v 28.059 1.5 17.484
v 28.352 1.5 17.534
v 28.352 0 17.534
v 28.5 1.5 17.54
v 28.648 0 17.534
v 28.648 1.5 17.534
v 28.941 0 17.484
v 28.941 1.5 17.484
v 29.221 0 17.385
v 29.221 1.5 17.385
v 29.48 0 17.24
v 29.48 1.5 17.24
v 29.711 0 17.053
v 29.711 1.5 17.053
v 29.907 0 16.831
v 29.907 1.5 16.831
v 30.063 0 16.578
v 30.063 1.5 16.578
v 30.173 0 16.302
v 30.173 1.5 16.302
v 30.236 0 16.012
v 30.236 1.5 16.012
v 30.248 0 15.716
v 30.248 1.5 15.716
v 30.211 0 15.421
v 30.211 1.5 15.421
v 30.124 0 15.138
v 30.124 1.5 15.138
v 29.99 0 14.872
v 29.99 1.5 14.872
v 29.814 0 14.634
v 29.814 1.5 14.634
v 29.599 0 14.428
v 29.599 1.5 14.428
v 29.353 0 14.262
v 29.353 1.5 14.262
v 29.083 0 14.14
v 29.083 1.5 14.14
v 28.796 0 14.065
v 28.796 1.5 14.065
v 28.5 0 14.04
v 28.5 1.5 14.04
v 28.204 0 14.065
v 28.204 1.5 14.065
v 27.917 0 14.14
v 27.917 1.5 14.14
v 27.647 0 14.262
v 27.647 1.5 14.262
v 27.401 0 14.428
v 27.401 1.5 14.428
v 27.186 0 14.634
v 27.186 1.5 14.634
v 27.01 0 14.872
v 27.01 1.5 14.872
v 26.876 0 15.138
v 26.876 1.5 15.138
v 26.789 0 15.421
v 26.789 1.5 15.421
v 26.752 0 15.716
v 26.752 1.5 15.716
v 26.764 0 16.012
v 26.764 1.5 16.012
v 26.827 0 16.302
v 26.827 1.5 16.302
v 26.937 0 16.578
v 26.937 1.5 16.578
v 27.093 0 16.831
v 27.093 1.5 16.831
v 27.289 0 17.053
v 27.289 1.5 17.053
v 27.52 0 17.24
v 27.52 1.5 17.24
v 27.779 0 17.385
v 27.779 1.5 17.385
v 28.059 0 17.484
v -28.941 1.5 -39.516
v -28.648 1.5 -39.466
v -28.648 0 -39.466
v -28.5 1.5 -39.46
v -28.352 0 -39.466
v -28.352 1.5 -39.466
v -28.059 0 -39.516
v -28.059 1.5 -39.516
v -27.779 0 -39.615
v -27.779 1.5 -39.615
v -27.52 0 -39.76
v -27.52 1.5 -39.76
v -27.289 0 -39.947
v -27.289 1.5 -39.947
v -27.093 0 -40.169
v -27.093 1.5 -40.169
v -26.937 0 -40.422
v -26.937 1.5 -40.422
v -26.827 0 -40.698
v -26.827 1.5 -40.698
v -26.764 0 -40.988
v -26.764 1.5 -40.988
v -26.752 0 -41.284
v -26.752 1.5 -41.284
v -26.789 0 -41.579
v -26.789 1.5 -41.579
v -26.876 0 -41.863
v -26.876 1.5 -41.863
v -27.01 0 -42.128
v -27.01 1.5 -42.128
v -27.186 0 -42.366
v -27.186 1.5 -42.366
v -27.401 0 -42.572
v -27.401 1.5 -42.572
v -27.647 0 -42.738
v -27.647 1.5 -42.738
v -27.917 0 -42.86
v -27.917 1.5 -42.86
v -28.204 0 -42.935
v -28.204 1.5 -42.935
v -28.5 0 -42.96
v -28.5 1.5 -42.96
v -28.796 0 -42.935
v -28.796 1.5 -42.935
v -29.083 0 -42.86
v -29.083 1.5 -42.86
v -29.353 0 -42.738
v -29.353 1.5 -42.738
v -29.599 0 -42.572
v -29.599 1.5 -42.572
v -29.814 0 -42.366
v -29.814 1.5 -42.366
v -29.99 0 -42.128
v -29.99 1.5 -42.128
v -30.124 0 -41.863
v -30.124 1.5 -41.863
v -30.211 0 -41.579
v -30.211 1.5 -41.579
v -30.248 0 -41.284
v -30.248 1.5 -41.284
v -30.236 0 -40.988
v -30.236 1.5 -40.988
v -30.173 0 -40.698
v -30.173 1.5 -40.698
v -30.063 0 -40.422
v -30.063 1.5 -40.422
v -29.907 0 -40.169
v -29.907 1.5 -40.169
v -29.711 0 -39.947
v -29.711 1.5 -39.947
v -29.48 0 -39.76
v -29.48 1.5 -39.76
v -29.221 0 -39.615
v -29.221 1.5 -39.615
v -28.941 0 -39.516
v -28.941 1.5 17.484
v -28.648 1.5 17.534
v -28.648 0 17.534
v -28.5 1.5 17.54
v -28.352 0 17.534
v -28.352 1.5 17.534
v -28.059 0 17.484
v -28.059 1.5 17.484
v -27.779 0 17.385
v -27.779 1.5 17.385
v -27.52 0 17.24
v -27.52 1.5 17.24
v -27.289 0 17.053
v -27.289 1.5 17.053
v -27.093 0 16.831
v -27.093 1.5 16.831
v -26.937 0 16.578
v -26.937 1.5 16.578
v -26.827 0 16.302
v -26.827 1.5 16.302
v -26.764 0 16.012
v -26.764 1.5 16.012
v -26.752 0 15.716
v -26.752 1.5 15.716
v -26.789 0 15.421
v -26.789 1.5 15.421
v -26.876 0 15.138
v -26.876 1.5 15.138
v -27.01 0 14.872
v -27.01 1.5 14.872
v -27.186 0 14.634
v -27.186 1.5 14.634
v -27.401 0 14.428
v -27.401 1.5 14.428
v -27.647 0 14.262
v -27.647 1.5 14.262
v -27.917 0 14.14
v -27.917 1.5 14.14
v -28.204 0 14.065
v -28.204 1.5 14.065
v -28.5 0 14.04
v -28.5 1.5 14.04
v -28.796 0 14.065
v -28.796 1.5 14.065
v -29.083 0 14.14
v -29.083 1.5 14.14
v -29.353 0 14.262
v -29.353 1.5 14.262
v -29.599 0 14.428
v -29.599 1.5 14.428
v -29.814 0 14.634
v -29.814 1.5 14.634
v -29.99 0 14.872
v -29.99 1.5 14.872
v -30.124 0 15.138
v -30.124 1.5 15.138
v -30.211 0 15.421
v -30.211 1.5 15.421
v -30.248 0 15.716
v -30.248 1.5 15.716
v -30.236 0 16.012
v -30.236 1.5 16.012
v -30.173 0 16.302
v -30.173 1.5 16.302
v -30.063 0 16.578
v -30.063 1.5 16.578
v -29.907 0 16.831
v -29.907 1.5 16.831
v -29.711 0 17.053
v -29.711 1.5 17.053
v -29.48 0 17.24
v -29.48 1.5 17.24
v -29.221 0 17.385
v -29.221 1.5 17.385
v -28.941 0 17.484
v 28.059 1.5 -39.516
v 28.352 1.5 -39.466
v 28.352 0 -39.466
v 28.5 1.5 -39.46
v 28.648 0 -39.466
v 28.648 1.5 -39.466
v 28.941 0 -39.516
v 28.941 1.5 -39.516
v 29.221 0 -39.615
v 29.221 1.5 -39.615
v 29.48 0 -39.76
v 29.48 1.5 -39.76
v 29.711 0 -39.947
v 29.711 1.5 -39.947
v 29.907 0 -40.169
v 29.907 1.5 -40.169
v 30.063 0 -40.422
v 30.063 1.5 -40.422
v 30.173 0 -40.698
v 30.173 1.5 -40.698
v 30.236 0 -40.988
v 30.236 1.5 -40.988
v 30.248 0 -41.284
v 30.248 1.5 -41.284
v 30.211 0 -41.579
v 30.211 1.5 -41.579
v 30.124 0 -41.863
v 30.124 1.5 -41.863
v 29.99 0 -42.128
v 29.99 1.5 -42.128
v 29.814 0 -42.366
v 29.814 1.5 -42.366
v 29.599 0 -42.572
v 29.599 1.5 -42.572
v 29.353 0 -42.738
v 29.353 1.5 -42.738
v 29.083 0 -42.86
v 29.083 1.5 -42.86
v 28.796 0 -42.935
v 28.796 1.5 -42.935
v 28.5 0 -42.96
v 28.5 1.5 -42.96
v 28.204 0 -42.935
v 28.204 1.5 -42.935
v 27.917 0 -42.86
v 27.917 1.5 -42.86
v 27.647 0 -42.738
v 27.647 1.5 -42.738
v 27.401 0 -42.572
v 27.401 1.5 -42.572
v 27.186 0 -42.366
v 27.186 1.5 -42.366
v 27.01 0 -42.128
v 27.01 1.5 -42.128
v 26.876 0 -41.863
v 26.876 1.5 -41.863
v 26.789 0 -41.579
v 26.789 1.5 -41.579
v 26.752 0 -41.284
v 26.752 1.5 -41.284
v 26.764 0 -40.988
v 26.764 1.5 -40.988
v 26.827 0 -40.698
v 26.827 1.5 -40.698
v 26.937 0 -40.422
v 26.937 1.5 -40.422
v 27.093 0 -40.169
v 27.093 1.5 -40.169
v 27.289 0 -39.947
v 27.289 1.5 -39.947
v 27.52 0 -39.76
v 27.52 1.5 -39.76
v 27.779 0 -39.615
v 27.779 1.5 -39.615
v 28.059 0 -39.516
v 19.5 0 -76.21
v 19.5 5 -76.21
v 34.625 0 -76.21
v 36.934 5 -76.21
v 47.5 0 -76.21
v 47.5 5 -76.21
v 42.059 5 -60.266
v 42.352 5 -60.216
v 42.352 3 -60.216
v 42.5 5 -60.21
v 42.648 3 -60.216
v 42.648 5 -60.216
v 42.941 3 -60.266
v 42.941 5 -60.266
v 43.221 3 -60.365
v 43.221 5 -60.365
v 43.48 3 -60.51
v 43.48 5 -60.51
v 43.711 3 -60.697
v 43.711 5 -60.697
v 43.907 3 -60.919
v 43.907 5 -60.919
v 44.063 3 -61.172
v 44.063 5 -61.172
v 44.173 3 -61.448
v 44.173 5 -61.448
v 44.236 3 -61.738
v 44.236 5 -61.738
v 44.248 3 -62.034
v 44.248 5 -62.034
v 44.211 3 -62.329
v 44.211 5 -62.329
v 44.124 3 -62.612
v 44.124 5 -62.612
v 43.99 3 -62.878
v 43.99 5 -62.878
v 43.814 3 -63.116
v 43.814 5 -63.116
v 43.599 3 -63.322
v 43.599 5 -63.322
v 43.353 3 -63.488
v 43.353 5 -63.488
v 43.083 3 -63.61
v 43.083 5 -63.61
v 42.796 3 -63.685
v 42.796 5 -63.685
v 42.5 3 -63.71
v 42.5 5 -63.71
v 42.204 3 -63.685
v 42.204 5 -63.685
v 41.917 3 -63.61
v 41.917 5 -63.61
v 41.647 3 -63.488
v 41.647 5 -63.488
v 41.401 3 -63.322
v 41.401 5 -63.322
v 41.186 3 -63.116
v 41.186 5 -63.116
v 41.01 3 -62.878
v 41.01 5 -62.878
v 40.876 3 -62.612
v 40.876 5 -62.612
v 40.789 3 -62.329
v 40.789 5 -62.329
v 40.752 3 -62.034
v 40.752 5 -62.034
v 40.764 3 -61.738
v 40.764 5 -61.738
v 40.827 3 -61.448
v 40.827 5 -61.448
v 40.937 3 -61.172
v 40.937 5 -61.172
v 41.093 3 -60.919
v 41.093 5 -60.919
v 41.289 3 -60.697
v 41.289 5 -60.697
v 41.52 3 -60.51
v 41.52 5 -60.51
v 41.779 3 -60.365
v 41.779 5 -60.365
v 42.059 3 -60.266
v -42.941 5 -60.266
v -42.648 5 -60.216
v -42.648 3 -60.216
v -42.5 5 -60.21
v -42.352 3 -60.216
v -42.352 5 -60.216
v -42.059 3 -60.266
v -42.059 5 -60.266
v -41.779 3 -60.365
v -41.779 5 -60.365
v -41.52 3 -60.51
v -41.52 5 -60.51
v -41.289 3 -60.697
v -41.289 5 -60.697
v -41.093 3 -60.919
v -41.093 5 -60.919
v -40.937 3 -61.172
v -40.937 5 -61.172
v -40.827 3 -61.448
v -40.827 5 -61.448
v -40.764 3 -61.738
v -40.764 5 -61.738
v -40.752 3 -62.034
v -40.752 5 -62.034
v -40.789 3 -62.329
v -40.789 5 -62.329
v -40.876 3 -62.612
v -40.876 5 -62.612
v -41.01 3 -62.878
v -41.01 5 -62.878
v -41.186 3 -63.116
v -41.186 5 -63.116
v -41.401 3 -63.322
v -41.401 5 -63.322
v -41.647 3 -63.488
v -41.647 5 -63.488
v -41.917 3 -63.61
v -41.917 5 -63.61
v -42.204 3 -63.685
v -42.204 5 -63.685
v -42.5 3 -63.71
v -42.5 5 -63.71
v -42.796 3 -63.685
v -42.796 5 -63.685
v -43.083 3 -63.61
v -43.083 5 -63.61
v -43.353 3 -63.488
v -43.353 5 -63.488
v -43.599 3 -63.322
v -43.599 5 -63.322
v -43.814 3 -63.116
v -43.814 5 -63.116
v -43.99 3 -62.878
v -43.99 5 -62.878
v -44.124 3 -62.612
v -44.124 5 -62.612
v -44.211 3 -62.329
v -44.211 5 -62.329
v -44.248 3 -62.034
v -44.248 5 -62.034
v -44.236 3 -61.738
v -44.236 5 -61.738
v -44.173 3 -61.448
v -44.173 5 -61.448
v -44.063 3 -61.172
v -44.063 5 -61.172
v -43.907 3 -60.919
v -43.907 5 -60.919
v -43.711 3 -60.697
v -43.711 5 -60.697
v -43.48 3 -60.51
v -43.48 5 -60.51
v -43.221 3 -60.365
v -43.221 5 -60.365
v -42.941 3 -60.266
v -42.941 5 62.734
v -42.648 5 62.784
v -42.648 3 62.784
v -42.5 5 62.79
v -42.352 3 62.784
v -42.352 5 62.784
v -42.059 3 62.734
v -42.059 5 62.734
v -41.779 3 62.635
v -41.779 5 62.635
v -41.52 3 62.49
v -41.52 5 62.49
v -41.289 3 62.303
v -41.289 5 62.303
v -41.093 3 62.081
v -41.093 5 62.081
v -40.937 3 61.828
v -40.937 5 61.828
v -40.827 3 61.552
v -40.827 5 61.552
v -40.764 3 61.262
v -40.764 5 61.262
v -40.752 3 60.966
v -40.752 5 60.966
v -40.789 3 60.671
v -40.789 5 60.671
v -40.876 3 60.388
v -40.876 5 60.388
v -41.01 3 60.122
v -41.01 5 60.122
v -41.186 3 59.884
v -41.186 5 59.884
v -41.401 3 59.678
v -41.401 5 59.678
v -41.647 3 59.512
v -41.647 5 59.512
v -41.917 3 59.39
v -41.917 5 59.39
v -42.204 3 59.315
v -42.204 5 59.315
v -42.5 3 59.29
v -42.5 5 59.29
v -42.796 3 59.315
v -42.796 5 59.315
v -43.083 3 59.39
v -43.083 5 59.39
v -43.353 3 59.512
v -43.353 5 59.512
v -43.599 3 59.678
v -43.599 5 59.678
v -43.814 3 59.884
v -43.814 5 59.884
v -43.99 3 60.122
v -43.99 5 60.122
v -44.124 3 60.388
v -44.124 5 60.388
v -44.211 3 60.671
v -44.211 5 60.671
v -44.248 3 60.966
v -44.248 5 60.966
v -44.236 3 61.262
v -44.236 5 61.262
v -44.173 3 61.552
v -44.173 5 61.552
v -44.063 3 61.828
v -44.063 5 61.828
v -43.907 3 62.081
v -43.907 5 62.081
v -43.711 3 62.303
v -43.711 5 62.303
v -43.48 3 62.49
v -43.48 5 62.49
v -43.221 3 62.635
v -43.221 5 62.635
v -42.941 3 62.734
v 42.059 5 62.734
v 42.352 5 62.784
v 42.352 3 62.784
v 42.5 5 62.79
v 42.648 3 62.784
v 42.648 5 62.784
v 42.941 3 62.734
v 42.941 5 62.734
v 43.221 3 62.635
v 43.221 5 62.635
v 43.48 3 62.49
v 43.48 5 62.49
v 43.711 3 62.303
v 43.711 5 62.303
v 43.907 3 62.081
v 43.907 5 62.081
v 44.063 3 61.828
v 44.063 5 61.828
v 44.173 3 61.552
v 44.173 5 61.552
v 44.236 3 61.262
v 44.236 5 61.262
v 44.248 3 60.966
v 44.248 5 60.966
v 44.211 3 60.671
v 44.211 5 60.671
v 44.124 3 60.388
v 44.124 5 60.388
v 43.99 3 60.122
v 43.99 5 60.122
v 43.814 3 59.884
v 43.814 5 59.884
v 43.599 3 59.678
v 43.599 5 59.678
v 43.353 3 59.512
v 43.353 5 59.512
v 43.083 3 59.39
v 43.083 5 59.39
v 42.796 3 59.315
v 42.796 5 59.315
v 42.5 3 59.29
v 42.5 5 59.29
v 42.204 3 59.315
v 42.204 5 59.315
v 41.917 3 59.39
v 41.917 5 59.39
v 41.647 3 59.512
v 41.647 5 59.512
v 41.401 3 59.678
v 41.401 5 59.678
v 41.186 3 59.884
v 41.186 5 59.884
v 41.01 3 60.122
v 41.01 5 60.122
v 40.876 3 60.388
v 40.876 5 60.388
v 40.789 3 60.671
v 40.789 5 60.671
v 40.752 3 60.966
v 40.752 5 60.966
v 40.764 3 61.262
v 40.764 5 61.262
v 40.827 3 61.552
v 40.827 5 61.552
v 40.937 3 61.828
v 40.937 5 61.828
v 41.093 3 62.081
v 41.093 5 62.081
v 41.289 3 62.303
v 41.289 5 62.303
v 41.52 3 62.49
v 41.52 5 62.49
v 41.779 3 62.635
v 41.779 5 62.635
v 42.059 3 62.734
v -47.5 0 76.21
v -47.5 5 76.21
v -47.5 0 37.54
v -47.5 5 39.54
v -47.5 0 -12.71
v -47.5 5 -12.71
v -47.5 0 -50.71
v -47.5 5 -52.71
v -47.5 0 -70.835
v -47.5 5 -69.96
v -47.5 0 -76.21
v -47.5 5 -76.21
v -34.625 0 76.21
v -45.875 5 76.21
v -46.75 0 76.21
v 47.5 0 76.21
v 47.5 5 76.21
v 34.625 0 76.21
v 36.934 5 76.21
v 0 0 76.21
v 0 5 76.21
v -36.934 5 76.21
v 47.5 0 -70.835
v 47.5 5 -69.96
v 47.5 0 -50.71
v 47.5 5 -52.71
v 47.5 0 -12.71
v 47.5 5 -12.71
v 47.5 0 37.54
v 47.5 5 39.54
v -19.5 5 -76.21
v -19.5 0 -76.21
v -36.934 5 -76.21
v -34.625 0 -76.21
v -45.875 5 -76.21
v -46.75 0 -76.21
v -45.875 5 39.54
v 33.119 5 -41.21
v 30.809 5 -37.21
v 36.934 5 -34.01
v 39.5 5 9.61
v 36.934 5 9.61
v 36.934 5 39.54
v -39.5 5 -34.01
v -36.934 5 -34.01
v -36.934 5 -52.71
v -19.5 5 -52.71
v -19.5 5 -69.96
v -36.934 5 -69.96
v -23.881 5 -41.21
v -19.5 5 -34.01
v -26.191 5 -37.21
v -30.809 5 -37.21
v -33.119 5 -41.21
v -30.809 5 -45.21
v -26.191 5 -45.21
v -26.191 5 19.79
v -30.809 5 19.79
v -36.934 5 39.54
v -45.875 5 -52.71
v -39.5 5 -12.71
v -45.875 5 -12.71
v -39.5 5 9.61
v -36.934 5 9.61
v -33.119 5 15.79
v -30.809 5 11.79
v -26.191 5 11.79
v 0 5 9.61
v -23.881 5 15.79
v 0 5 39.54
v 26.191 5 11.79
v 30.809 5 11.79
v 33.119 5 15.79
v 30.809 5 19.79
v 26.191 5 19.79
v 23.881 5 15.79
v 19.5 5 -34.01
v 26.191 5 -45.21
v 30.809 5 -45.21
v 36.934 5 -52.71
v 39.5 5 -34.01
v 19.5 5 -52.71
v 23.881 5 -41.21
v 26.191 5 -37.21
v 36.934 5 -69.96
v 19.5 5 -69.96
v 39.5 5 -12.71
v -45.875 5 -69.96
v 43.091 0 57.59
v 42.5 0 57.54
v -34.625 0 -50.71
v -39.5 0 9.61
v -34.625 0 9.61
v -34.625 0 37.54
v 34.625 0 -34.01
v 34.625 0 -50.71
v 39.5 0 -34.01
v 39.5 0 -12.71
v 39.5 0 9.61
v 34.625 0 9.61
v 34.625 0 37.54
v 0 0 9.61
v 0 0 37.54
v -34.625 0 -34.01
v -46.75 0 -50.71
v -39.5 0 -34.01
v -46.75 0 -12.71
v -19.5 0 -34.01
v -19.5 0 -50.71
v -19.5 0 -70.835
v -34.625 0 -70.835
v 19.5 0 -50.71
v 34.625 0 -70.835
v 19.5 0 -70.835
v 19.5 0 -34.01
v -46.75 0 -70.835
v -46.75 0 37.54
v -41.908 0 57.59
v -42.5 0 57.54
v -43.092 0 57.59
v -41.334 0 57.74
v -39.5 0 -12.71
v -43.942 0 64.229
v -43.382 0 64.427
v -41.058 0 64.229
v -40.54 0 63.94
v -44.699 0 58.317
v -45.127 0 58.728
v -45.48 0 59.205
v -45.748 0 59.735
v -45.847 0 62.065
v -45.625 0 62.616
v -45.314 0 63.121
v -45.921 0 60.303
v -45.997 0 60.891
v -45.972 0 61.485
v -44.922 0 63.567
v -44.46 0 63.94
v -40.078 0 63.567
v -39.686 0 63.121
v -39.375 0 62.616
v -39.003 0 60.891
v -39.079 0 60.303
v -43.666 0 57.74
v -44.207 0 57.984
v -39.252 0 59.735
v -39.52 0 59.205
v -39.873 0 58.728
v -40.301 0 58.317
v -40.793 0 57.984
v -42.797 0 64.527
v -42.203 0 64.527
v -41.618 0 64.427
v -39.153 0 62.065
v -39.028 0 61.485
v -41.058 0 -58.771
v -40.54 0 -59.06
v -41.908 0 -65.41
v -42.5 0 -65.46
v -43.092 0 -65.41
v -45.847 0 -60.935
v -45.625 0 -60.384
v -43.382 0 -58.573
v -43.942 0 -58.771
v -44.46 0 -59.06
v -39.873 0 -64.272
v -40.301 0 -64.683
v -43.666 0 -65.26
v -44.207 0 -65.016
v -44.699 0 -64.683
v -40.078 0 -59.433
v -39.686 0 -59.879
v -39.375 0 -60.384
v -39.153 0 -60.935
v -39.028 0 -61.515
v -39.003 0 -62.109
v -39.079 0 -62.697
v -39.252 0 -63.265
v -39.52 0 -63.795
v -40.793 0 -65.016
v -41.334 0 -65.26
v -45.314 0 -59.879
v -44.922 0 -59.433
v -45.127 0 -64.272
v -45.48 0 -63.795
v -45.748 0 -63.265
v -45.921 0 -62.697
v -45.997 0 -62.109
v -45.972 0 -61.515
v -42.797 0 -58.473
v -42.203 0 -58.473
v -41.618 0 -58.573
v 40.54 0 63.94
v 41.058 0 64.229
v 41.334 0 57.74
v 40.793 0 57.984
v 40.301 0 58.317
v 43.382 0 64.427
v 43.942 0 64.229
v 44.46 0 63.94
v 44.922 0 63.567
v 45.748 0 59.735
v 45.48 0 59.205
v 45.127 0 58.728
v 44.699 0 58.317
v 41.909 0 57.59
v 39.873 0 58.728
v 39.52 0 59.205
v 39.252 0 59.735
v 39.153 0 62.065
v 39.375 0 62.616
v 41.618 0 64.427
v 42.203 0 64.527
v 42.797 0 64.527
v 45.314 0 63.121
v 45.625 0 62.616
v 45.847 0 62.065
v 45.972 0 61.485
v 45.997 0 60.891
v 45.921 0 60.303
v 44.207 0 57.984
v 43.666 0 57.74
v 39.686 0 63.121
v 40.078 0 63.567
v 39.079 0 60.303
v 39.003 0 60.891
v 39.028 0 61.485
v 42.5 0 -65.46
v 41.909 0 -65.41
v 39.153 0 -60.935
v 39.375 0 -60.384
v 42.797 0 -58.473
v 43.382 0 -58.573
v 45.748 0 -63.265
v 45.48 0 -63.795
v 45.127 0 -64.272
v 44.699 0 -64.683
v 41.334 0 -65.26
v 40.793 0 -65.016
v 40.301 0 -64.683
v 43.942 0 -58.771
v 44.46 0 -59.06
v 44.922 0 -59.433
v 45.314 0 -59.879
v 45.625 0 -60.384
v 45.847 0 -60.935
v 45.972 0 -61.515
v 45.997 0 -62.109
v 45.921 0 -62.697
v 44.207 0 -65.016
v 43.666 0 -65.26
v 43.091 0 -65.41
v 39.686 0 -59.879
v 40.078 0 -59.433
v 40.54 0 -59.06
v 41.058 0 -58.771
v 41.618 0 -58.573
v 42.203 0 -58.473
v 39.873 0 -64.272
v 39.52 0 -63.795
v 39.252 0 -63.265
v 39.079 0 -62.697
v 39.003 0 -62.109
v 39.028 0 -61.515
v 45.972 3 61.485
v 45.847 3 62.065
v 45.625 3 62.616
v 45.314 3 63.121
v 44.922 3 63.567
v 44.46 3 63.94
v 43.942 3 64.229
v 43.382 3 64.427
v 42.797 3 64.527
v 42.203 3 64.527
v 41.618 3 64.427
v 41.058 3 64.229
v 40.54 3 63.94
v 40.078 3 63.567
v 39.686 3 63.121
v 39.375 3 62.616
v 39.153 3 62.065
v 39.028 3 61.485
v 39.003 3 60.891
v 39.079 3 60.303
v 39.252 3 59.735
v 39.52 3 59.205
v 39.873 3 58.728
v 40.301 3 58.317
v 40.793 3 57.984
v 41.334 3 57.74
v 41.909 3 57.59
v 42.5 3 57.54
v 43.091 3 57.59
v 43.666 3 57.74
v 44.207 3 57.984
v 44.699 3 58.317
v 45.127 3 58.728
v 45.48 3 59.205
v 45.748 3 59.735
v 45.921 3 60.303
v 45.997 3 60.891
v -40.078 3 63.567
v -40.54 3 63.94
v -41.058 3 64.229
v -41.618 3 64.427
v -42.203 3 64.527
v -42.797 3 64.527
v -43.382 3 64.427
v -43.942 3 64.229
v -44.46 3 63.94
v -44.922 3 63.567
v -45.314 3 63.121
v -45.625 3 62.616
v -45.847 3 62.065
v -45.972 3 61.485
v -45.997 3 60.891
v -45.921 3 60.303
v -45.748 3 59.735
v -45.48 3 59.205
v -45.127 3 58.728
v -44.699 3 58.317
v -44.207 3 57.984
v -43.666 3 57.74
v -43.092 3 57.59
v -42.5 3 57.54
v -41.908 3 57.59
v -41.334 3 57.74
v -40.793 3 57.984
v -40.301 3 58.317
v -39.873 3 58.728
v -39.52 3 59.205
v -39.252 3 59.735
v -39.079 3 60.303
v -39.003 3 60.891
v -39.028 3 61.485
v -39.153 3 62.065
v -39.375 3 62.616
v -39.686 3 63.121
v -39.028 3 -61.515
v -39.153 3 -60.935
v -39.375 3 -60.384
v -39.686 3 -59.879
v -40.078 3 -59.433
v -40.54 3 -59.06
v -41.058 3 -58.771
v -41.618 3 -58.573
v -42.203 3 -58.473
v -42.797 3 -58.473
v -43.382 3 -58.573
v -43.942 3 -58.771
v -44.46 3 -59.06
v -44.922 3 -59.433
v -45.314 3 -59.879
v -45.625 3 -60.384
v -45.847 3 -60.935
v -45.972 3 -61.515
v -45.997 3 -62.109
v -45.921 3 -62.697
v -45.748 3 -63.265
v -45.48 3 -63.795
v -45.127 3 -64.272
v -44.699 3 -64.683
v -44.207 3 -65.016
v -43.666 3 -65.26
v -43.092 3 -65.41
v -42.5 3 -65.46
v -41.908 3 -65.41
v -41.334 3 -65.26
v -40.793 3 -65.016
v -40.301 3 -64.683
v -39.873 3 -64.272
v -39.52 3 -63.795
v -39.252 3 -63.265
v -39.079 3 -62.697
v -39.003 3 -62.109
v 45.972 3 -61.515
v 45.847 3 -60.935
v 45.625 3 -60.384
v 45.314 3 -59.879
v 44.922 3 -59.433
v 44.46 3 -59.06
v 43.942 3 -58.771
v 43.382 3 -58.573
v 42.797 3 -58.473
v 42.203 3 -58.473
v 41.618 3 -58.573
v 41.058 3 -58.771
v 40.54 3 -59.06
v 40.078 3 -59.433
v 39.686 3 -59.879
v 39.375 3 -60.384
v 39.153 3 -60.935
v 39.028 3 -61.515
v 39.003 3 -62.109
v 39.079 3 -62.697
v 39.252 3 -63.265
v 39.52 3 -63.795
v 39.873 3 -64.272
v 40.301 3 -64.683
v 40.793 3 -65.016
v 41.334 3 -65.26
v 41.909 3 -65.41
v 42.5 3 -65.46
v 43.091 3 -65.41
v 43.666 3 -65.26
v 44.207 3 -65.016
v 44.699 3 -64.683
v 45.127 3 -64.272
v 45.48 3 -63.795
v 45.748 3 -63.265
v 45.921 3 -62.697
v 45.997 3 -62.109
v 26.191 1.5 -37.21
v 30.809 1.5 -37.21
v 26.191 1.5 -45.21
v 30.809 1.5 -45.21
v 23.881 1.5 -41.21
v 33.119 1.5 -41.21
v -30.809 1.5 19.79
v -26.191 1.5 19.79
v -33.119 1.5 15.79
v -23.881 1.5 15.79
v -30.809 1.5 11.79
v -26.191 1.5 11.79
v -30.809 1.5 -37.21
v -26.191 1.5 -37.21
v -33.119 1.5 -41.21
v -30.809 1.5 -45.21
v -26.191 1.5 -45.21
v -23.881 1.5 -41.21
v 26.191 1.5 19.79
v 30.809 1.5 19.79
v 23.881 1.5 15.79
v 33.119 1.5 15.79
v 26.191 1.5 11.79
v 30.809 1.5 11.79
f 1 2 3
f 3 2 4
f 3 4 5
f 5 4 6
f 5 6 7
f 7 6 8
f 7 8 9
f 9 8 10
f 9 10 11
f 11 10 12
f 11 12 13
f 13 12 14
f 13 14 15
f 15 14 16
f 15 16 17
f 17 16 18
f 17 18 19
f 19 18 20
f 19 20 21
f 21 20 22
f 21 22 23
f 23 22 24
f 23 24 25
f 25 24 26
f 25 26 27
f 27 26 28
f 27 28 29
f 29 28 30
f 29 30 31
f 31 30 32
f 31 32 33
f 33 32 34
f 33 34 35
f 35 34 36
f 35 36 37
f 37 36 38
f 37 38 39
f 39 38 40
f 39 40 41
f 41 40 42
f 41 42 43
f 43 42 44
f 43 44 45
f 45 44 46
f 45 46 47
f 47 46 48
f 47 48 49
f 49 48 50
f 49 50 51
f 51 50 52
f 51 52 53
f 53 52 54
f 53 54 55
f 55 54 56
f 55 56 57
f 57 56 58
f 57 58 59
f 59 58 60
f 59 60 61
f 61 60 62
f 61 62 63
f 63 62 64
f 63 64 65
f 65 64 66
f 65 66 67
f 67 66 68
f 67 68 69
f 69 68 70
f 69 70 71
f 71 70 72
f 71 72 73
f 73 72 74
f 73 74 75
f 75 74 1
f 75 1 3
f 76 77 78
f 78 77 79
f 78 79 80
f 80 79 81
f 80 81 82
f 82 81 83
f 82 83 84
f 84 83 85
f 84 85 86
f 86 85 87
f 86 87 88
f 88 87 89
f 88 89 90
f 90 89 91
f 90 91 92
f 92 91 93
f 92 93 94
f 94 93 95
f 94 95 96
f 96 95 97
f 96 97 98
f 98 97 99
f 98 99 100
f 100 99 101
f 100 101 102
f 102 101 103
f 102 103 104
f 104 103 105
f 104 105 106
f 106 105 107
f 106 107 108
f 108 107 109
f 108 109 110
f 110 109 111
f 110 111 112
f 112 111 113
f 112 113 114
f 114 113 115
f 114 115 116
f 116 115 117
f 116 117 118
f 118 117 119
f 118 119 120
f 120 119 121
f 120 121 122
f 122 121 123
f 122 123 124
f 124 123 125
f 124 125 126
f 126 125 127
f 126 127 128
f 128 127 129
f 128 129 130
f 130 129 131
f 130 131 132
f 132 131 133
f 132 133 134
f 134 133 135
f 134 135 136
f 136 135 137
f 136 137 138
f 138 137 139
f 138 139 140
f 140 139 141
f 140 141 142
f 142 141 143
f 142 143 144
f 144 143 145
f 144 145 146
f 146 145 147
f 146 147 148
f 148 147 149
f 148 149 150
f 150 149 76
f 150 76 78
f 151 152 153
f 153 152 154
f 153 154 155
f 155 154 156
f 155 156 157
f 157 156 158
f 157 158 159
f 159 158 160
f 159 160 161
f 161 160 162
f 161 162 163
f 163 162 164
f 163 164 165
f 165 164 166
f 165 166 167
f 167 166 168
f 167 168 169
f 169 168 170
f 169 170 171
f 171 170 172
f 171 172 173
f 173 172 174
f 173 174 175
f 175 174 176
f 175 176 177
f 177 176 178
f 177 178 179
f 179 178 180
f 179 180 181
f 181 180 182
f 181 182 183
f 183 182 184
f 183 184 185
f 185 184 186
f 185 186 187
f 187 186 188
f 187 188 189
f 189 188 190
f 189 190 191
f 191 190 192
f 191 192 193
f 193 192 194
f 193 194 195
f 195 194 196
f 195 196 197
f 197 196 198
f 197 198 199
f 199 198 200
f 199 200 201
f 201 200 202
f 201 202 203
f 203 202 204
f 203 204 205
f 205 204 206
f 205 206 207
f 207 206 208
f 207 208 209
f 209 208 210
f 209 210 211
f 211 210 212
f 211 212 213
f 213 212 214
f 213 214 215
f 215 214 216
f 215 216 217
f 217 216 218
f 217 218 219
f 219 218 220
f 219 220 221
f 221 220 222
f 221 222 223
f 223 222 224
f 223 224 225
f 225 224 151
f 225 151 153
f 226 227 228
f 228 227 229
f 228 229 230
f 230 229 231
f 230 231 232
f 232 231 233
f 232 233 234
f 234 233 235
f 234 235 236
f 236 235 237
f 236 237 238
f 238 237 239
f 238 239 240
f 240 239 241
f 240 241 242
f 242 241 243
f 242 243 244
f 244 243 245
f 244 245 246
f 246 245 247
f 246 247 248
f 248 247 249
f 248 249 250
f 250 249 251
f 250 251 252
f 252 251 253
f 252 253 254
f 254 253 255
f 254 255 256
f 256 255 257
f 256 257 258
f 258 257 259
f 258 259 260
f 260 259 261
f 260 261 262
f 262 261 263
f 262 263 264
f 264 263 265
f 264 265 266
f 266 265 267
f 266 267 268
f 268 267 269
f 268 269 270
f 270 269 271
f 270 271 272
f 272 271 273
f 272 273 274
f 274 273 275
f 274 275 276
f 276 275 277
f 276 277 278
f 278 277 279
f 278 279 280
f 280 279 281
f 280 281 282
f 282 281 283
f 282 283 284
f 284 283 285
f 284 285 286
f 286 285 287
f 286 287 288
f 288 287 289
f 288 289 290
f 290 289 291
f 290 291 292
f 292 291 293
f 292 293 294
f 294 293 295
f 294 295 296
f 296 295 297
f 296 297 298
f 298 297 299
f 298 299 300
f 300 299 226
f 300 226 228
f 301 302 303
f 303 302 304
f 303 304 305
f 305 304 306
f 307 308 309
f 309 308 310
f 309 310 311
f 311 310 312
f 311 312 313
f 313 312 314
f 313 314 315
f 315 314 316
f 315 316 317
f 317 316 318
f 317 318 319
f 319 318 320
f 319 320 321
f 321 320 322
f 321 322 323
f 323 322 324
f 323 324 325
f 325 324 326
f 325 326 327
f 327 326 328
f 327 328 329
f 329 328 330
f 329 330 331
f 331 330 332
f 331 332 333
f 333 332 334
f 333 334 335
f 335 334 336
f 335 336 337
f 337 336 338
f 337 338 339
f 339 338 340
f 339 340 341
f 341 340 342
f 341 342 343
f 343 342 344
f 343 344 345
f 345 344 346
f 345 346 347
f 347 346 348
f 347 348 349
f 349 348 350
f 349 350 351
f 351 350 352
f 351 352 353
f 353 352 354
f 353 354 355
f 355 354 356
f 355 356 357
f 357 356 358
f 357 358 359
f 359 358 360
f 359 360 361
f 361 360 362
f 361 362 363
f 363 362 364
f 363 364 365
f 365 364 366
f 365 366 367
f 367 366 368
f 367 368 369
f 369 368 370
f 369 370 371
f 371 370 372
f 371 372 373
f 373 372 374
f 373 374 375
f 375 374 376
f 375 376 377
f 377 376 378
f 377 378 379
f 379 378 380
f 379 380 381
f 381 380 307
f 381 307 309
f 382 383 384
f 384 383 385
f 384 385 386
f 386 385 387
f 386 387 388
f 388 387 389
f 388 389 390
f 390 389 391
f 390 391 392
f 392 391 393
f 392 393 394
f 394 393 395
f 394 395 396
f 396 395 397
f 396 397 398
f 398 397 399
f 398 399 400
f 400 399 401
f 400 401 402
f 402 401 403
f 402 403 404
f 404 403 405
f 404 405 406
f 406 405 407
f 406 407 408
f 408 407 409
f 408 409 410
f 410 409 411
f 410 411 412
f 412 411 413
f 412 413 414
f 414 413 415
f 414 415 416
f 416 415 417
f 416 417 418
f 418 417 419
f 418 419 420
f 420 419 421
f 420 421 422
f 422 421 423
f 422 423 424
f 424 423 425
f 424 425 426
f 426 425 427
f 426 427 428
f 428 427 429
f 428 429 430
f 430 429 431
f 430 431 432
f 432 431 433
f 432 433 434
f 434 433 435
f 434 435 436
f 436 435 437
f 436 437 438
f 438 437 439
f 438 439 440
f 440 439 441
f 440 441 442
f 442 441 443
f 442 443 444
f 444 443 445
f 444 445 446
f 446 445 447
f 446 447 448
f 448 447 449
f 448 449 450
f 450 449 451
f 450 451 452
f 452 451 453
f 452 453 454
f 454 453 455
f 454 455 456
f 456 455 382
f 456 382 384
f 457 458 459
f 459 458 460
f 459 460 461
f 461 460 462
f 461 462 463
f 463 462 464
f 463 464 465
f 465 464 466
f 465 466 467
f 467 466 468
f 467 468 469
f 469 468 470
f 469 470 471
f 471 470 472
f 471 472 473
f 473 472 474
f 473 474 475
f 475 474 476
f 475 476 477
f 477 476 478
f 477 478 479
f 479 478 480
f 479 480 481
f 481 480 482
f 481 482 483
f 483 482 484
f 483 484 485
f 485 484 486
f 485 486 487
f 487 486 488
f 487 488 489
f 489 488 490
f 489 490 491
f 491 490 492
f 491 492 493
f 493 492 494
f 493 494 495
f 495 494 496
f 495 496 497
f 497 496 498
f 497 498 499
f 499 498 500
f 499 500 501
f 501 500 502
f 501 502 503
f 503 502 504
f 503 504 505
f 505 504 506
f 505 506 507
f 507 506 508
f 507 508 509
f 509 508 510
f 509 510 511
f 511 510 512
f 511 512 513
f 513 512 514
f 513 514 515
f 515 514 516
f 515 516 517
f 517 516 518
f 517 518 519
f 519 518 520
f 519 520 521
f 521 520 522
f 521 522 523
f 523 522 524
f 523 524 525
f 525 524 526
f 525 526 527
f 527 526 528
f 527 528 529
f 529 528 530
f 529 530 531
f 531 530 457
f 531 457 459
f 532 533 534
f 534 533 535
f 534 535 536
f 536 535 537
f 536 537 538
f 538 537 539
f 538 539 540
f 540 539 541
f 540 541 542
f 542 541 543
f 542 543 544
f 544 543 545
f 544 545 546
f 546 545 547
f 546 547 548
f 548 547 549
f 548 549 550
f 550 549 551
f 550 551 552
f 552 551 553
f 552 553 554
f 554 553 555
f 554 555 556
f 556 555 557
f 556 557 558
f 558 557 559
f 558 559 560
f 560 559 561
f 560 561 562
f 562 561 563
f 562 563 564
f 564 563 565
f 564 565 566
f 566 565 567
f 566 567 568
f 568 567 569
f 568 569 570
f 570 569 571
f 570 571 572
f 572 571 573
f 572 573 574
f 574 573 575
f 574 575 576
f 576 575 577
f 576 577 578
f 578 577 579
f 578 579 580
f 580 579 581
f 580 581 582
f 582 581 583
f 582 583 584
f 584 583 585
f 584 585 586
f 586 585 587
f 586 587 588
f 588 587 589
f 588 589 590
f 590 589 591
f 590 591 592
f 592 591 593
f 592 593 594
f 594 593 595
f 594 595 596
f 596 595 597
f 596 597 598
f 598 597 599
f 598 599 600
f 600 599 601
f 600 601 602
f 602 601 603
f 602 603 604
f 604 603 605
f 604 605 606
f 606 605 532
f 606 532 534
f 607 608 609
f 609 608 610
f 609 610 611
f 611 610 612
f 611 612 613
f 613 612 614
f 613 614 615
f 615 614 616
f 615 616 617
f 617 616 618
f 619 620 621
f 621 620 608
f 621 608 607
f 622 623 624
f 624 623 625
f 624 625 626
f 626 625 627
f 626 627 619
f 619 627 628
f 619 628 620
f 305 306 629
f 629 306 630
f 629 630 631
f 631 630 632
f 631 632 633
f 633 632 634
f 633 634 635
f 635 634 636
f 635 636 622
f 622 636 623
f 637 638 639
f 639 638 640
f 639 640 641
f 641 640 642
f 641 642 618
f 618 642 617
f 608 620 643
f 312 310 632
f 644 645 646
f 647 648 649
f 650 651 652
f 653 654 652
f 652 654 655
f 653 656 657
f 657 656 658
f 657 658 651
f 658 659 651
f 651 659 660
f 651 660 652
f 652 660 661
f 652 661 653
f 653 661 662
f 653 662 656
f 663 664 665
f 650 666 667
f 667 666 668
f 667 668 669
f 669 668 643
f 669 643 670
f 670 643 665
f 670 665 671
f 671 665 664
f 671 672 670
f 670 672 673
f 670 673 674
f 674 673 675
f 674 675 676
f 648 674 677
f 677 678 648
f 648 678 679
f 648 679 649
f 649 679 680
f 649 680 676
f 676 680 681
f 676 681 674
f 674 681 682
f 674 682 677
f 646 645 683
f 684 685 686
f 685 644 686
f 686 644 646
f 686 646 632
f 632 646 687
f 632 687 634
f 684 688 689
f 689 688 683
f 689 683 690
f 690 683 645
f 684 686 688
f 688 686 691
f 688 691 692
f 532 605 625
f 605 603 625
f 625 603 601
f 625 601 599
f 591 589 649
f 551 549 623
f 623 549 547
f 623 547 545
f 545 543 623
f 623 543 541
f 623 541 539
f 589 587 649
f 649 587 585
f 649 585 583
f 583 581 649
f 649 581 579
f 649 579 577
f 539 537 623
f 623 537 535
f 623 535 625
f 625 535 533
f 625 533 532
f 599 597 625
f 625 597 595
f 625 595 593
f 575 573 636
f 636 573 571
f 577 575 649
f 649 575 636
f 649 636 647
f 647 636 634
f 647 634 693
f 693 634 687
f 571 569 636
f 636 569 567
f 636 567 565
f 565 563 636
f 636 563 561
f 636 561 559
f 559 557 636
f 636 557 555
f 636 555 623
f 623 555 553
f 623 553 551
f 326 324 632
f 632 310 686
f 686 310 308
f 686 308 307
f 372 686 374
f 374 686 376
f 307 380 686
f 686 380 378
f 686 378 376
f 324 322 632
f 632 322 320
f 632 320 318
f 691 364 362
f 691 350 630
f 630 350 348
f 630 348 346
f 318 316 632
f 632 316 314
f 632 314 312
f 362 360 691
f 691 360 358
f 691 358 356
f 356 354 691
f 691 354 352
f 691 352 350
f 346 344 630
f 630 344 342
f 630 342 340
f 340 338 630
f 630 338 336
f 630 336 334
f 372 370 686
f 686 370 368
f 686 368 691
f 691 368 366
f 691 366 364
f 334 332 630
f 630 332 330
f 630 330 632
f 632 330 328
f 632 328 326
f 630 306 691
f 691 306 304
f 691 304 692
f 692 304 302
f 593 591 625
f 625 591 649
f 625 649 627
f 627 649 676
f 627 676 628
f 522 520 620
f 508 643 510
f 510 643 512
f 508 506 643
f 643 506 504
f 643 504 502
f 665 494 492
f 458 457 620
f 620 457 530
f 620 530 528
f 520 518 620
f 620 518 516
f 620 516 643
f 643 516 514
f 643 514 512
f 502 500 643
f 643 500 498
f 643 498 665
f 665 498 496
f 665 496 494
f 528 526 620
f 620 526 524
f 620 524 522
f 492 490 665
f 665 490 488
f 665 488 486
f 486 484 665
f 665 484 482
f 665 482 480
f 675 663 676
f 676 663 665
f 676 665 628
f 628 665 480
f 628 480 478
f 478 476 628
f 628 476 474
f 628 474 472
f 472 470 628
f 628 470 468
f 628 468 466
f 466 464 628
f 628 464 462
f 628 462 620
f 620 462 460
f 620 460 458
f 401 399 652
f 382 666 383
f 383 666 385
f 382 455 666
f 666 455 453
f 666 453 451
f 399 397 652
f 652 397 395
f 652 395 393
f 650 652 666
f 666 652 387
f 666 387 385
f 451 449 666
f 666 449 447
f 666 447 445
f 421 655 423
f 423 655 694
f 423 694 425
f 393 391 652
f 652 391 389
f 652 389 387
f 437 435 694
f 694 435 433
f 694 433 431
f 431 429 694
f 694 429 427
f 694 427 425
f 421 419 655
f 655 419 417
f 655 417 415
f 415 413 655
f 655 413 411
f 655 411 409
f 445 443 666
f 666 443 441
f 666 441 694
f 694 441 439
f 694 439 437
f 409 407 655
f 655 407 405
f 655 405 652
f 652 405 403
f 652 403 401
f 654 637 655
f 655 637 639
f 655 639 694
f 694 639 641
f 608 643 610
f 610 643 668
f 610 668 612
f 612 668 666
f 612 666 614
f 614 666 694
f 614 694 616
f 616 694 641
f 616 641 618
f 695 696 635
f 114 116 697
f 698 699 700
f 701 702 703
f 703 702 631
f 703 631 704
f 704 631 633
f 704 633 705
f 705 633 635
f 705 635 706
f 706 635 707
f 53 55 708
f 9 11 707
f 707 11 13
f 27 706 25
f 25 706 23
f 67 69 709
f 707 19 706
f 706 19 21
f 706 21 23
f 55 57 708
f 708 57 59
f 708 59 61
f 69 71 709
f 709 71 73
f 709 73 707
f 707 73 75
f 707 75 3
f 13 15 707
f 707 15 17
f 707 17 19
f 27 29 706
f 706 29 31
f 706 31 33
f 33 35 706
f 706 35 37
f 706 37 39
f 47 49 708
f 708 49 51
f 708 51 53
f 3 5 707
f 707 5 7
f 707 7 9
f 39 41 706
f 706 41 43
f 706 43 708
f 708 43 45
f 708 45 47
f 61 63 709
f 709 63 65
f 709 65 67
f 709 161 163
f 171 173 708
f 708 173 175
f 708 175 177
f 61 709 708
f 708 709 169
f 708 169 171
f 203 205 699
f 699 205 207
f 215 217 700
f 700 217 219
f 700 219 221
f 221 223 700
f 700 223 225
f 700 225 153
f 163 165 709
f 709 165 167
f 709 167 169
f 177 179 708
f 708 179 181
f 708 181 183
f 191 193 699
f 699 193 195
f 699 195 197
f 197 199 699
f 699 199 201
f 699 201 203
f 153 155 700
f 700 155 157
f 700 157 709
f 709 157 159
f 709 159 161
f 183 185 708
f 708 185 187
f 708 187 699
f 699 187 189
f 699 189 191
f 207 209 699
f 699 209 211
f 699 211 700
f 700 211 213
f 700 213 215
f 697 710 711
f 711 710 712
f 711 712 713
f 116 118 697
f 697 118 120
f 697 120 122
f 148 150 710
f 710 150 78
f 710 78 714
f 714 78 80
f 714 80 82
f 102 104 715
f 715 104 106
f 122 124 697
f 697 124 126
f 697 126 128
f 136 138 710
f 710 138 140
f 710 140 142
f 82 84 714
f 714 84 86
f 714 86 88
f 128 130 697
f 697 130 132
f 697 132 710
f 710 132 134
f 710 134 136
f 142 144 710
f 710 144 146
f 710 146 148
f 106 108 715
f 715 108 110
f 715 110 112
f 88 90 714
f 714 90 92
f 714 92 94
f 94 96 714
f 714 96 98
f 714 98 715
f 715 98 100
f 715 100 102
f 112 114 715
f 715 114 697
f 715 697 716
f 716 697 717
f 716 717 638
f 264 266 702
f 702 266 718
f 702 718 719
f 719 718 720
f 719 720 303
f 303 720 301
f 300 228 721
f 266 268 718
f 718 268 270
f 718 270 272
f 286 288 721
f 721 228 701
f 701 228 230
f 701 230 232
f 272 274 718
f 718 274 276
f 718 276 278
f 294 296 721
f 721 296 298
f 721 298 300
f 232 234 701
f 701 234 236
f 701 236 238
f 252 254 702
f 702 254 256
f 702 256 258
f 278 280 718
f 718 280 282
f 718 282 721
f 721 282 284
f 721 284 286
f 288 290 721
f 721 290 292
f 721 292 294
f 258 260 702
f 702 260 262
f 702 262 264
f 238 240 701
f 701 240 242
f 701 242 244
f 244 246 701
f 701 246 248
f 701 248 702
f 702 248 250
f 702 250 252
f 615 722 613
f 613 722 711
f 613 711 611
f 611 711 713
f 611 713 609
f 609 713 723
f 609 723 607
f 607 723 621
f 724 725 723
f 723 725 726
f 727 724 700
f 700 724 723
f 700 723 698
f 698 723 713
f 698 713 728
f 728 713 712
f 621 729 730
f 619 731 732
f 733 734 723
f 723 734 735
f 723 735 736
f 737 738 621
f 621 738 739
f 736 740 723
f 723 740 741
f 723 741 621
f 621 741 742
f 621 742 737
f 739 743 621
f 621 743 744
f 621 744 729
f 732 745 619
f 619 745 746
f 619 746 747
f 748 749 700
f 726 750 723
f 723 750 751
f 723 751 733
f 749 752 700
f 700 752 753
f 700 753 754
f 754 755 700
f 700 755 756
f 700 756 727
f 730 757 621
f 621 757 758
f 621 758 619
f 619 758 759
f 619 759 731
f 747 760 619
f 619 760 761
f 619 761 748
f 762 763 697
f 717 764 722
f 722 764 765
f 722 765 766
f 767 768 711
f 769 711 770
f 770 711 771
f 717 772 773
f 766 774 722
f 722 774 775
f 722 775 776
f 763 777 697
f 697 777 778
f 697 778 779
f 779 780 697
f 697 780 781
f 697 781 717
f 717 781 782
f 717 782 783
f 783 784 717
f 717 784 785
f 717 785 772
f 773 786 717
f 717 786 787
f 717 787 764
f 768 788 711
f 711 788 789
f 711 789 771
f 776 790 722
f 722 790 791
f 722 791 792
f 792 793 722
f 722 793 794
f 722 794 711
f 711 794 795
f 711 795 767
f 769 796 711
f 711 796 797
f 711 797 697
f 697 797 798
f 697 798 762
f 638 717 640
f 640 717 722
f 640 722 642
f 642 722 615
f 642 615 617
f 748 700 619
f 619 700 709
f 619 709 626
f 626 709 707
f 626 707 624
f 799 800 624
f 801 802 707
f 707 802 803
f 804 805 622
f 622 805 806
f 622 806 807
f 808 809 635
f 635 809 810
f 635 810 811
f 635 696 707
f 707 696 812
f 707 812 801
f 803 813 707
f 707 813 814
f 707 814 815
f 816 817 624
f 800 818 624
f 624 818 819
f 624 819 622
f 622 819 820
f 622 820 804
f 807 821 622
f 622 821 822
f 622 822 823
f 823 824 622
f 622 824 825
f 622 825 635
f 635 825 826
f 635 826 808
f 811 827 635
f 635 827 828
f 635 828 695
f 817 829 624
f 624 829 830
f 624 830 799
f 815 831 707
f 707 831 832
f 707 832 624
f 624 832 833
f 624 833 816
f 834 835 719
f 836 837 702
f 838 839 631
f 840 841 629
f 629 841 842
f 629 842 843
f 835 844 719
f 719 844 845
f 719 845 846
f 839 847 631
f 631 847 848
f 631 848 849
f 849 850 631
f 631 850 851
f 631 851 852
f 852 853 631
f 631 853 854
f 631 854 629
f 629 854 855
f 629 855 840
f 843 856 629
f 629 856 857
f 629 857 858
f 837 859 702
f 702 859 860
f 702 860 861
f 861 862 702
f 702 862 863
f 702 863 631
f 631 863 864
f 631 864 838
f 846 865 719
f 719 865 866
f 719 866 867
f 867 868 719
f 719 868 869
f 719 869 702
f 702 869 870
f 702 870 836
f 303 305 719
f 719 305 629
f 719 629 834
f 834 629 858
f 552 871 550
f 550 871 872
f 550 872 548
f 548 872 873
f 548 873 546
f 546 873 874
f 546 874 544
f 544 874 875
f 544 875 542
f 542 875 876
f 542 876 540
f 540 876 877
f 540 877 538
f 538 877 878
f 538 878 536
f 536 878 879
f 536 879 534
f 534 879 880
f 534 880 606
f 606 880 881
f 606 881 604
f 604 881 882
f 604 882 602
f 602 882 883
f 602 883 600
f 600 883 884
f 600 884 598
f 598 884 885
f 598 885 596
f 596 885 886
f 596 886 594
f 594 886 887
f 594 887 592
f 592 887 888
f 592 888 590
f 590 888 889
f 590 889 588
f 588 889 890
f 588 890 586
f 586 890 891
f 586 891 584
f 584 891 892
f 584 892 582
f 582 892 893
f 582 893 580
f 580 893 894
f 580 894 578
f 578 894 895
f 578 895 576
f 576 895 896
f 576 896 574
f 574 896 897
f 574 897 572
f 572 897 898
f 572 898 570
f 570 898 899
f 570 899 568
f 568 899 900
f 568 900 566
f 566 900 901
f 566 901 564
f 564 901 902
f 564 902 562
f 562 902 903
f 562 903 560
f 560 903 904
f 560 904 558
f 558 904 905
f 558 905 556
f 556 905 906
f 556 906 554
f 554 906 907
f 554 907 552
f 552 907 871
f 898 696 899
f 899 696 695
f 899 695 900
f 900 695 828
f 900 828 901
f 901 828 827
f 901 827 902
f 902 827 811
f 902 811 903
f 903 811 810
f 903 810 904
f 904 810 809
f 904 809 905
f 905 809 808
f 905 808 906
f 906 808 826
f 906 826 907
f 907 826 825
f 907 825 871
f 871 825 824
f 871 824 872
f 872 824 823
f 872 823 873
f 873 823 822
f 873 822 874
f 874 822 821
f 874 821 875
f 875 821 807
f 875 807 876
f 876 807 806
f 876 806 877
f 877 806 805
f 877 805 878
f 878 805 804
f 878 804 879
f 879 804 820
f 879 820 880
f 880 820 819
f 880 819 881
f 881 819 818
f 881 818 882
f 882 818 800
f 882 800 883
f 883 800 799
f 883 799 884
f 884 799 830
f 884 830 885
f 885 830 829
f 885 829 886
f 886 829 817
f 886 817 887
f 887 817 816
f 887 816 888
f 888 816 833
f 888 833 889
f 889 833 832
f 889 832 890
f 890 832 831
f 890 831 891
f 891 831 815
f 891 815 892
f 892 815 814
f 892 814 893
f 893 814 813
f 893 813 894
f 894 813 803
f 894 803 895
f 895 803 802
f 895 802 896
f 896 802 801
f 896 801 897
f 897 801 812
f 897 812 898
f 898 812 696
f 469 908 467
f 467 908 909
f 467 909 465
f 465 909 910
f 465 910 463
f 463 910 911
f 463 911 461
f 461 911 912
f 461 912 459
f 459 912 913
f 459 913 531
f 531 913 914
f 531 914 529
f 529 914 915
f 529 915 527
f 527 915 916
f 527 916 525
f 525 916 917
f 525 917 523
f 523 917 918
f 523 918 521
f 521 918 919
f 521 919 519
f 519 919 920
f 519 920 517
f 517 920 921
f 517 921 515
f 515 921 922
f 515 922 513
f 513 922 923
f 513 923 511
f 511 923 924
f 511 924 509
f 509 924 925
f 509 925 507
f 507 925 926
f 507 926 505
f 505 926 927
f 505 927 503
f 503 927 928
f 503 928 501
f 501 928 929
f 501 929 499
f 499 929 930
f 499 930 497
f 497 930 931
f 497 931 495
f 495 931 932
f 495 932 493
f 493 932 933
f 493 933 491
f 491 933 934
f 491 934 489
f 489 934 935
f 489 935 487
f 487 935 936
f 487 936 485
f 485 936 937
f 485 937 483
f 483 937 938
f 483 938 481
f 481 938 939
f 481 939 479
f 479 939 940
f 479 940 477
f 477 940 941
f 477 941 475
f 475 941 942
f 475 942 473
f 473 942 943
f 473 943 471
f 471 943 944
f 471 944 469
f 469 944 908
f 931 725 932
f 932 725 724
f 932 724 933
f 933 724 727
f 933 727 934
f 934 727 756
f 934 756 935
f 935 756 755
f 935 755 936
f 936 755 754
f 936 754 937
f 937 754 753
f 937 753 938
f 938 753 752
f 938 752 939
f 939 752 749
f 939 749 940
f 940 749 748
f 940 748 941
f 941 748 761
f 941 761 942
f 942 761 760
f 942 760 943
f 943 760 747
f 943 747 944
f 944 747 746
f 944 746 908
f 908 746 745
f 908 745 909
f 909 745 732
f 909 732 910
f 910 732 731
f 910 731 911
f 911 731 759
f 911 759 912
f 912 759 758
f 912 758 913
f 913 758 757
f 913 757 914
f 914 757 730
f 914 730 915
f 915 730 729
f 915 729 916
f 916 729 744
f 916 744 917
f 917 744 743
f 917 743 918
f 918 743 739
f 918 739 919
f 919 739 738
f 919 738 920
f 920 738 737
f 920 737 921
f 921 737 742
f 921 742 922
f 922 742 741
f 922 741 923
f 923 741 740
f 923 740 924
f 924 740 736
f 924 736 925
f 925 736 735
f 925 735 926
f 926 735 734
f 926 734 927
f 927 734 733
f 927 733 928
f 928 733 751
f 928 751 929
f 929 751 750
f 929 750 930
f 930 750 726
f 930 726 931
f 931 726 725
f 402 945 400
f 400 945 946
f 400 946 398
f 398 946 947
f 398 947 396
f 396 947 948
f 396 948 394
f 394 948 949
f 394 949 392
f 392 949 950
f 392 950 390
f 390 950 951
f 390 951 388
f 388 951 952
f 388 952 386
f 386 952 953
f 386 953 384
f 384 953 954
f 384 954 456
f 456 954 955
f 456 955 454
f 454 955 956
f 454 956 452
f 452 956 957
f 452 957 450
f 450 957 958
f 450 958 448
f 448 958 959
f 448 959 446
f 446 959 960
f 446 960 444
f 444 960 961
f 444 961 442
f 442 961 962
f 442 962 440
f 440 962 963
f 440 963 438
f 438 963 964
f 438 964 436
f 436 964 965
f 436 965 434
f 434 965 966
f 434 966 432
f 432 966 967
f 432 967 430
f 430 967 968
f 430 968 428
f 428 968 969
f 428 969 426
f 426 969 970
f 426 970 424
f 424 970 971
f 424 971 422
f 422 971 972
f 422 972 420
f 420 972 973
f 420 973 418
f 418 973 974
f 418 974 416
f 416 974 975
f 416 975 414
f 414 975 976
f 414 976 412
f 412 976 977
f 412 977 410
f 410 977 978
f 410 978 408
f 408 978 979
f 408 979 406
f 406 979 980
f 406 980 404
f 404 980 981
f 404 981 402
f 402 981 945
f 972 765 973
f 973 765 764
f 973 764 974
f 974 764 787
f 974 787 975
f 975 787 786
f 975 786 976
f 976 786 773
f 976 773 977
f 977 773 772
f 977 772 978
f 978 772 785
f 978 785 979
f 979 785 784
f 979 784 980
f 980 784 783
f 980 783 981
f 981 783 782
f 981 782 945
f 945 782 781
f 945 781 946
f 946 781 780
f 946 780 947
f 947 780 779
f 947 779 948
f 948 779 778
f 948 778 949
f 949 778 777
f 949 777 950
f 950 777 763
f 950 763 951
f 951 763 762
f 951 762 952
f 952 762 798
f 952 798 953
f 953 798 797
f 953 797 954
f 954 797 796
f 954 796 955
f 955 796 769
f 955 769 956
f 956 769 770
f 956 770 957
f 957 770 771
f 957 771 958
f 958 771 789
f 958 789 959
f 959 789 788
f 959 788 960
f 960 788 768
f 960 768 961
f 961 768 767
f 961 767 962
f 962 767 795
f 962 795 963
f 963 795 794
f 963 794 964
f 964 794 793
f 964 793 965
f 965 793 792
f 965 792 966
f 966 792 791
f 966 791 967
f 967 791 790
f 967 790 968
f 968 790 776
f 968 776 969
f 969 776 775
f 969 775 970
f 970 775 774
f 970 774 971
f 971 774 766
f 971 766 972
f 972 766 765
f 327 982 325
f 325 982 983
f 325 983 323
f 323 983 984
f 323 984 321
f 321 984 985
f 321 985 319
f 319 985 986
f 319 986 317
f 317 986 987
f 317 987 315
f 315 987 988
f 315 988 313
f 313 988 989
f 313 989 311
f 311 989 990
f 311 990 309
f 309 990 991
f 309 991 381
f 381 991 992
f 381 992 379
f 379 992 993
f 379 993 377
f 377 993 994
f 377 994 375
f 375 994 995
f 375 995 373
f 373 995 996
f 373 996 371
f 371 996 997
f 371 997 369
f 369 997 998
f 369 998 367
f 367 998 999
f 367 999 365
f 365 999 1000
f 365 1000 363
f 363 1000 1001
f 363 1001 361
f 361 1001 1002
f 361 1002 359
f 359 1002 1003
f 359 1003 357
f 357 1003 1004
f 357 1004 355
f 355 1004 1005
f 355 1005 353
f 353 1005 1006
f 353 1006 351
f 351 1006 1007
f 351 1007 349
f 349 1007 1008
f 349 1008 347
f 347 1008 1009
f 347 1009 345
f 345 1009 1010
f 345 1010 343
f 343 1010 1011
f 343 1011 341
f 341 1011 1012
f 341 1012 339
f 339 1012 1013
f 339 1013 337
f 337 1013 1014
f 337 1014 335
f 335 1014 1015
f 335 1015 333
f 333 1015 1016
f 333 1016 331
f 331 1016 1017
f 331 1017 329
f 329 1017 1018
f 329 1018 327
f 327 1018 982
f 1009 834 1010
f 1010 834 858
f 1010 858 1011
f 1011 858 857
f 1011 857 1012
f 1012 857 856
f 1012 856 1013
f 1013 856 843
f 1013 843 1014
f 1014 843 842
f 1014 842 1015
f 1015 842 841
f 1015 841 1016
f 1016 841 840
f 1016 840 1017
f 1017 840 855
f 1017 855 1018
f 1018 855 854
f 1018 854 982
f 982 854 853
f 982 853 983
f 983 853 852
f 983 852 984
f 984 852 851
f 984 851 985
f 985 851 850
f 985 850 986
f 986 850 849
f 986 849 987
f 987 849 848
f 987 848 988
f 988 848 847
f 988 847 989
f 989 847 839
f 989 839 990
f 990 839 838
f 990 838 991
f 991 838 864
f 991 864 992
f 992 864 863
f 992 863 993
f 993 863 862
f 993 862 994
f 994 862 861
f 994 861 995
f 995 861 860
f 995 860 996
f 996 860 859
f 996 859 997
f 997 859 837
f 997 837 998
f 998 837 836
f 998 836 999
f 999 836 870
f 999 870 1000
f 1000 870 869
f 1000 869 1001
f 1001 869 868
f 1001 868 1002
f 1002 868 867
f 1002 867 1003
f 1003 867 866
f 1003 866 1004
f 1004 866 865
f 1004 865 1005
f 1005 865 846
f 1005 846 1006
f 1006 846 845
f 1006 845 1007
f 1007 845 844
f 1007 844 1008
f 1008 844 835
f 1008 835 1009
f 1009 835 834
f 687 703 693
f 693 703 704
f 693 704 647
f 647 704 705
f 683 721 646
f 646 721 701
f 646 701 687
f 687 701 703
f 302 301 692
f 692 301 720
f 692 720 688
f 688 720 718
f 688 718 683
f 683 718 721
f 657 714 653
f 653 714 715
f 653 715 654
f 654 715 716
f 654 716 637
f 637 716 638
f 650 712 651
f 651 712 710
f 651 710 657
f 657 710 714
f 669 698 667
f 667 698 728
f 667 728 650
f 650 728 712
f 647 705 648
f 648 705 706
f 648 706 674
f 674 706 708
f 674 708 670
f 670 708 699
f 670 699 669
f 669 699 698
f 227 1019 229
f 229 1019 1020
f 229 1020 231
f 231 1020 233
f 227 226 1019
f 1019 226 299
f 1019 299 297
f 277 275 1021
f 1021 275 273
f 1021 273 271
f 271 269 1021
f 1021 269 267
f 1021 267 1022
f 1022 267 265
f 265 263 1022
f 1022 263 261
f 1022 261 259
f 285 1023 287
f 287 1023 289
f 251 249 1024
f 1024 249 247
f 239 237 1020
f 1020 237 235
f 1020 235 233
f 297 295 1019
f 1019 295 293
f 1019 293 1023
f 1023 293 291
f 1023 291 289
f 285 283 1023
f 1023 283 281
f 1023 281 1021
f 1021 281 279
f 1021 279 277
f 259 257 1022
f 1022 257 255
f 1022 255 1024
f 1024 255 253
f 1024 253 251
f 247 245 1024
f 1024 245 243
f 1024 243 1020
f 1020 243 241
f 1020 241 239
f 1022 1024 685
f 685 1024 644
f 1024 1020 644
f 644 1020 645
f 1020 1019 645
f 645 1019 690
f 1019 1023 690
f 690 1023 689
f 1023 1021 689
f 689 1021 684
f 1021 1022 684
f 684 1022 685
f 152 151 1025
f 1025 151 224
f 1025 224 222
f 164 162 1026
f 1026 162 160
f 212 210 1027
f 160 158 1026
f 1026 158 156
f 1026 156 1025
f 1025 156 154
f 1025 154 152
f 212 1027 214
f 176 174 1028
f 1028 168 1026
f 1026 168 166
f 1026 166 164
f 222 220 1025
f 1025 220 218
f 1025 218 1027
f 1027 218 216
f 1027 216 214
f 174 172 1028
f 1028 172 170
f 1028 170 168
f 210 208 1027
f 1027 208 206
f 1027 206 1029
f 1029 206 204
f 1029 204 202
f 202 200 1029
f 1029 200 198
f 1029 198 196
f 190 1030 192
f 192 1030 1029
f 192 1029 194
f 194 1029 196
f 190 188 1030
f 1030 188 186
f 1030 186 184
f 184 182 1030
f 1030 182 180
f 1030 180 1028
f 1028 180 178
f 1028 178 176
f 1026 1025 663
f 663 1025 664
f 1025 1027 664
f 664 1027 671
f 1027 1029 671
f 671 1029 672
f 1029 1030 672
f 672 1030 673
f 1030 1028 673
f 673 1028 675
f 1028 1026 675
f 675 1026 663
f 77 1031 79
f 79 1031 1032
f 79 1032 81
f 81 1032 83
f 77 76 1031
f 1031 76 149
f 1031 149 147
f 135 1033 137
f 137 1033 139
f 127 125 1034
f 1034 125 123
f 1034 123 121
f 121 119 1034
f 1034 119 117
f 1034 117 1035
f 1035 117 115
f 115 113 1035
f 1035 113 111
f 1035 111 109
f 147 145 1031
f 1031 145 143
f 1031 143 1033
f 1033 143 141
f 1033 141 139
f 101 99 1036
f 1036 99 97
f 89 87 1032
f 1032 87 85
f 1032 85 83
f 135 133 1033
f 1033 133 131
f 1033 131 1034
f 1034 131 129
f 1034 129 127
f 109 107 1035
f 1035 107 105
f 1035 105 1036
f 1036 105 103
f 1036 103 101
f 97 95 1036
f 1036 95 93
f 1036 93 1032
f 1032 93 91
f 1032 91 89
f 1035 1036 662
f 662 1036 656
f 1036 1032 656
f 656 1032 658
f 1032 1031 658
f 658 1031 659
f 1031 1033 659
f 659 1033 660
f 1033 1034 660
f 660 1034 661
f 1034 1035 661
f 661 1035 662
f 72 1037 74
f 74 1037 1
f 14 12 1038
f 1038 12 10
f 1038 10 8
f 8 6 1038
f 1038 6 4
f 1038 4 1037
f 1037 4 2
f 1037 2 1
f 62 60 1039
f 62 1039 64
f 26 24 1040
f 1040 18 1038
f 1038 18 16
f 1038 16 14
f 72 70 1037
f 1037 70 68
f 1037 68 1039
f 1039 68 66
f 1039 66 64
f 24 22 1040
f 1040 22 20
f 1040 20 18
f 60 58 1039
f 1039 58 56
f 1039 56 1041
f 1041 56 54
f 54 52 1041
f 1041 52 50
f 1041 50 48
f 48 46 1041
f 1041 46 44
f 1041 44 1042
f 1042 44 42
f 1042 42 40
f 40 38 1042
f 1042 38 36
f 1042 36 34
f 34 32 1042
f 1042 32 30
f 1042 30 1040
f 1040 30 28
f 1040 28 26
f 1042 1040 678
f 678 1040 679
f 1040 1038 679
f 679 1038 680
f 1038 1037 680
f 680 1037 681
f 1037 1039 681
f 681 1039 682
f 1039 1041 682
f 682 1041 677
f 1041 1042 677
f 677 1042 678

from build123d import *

# Parameters (mm, degrees)
SKETCH1_W           = 95
SKETCH1_H           = 152.42
BOSS_EXTRUDE1_DEPTH = 5
SKETCH2_R           = 1.75
CUT_EXTRUDE1_DEPTH  = 10
SKETCH3_R           = 3.5
CUT_EXTRUDE2_DEPTH  = 3
CUT_EXTRUDE3_DEPTH  = 10
SKETCH4_R           = 1.75
CUT_EXTRUDE4_DEPTH  = 10
CUT_EXTRUDE5_DEPTH  = 3.5


with BuildPart() as part:
    # Sketch1 → Boss-Extrude1 (new body)
    with BuildSketch(Plane(origin=(0, 0, 0), x_dir=(1, 0, 0), z_dir=(0, 1, 0))):
        Rectangle(SKETCH1_W, SKETCH1_H)
    extrude(amount=BOSS_EXTRUDE1_DEPTH)

    # Sketch2 → Cut-Extrude1 (cut)
    with BuildSketch(Plane.XZ):
        with Locations(Location((42.5, -61.96, 0), (0, 0, 270))):
            Circle(SKETCH2_R)
        with Locations(Location((-42.5, -61.96, 0), (0, 0, 270))):
            Circle(SKETCH2_R)
        with Locations(Location((-42.5, 61.04, 0), (0, 0, 270))):
            Circle(SKETCH2_R)
        with Locations(Location((42.5, 61.04, 0), (0, 0, 270))):
            Circle(SKETCH2_R)
    extrude(amount=-CUT_EXTRUDE1_DEPTH, mode=Mode.SUBTRACT)

    # Sketch3 → Cut-Extrude2 (cut)
    with BuildSketch(Plane.XZ):
        with Locations(Location((42.5, -61.96, 0), (0, 0, 270))):
            Circle(SKETCH3_R)
        with Locations(Location((42.5, 61.04, 0), (0, 0, 270))):
            Circle(SKETCH3_R)
        with Locations(Location((-42.5, 61.04, 0), (0, 0, 270))):
            Circle(SKETCH3_R)
        with Locations(Location((-42.5, -61.96, 0), (0, 0, 270))):
            Circle(SKETCH3_R)
    extrude(amount=-CUT_EXTRUDE2_DEPTH, mode=Mode.SUBTRACT)

    # Sketch5 → Cut-Extrude3 (cut)
    with BuildSketch(Plane.XZ):
        Polygon((39.5, -34.01), (19.5, -34.01), (19.5, -76.21), (-19.5, -76.21), (-19.5, -34.01), (-39.5, -34.01), (-39.5, 9.61), (39.5, 9.61), align=None)
    extrude(amount=-CUT_EXTRUDE3_DEPTH, mode=Mode.SUBTRACT)

    # Sketch4 → Cut-Extrude4 (cut)
    with BuildSketch(Plane.XZ):
        with Locations(Location((28.5, -41.21, 0), (0, 0, 270))):
            Circle(SKETCH4_R)
        with Locations(Location((28.5, 15.79, 0), (0, 0, 270))):
            Circle(SKETCH4_R)
        with Locations(Location((-28.5, 15.79, 0), (0, 0, 270))):
            Circle(SKETCH4_R)
        with Locations(Location((-28.5, -41.21, 0), (0, 0, 270))):
            Circle(SKETCH4_R)
    extrude(amount=-CUT_EXTRUDE4_DEPTH, mode=Mode.SUBTRACT)

    # Sketch6 → Cut-Extrude5 (cut)
    with BuildSketch(Plane(origin=(0, 5, 0), x_dir=(1, 0, 0), z_dir=(0, 1, 0))):
        Polygon((-26.190598923, 45.21), (-30.809401077, 45.21), (-33.118802154, 41.21), (-30.809401077, 37.21), (-26.190598923, 37.21), (-23.881197846, 41.21), align=None)
        Polygon((30.809401077, 45.21), (26.190598923, 45.21), (23.881197846, 41.21), (26.190598923, 37.21), (30.809401077, 37.21), (33.118802154, 41.21), align=None)
        Polygon((30.809401077, -11.79), (26.190598923, -11.79), (23.881197846, -15.79), (26.190598923, -19.79), (30.809401077, -19.79), (33.118802154, -15.79), align=None)
        Polygon((-26.190598923, -19.79), (-23.881197846, -15.79), (-26.190598923, -11.79), (-30.809401077, -11.79), (-33.118802154, -15.79), (-30.809401077, -19.79), align=None)
    extrude(amount=-CUT_EXTRUDE5_DEPTH, mode=Mode.SUBTRACT)


solid = part.part
